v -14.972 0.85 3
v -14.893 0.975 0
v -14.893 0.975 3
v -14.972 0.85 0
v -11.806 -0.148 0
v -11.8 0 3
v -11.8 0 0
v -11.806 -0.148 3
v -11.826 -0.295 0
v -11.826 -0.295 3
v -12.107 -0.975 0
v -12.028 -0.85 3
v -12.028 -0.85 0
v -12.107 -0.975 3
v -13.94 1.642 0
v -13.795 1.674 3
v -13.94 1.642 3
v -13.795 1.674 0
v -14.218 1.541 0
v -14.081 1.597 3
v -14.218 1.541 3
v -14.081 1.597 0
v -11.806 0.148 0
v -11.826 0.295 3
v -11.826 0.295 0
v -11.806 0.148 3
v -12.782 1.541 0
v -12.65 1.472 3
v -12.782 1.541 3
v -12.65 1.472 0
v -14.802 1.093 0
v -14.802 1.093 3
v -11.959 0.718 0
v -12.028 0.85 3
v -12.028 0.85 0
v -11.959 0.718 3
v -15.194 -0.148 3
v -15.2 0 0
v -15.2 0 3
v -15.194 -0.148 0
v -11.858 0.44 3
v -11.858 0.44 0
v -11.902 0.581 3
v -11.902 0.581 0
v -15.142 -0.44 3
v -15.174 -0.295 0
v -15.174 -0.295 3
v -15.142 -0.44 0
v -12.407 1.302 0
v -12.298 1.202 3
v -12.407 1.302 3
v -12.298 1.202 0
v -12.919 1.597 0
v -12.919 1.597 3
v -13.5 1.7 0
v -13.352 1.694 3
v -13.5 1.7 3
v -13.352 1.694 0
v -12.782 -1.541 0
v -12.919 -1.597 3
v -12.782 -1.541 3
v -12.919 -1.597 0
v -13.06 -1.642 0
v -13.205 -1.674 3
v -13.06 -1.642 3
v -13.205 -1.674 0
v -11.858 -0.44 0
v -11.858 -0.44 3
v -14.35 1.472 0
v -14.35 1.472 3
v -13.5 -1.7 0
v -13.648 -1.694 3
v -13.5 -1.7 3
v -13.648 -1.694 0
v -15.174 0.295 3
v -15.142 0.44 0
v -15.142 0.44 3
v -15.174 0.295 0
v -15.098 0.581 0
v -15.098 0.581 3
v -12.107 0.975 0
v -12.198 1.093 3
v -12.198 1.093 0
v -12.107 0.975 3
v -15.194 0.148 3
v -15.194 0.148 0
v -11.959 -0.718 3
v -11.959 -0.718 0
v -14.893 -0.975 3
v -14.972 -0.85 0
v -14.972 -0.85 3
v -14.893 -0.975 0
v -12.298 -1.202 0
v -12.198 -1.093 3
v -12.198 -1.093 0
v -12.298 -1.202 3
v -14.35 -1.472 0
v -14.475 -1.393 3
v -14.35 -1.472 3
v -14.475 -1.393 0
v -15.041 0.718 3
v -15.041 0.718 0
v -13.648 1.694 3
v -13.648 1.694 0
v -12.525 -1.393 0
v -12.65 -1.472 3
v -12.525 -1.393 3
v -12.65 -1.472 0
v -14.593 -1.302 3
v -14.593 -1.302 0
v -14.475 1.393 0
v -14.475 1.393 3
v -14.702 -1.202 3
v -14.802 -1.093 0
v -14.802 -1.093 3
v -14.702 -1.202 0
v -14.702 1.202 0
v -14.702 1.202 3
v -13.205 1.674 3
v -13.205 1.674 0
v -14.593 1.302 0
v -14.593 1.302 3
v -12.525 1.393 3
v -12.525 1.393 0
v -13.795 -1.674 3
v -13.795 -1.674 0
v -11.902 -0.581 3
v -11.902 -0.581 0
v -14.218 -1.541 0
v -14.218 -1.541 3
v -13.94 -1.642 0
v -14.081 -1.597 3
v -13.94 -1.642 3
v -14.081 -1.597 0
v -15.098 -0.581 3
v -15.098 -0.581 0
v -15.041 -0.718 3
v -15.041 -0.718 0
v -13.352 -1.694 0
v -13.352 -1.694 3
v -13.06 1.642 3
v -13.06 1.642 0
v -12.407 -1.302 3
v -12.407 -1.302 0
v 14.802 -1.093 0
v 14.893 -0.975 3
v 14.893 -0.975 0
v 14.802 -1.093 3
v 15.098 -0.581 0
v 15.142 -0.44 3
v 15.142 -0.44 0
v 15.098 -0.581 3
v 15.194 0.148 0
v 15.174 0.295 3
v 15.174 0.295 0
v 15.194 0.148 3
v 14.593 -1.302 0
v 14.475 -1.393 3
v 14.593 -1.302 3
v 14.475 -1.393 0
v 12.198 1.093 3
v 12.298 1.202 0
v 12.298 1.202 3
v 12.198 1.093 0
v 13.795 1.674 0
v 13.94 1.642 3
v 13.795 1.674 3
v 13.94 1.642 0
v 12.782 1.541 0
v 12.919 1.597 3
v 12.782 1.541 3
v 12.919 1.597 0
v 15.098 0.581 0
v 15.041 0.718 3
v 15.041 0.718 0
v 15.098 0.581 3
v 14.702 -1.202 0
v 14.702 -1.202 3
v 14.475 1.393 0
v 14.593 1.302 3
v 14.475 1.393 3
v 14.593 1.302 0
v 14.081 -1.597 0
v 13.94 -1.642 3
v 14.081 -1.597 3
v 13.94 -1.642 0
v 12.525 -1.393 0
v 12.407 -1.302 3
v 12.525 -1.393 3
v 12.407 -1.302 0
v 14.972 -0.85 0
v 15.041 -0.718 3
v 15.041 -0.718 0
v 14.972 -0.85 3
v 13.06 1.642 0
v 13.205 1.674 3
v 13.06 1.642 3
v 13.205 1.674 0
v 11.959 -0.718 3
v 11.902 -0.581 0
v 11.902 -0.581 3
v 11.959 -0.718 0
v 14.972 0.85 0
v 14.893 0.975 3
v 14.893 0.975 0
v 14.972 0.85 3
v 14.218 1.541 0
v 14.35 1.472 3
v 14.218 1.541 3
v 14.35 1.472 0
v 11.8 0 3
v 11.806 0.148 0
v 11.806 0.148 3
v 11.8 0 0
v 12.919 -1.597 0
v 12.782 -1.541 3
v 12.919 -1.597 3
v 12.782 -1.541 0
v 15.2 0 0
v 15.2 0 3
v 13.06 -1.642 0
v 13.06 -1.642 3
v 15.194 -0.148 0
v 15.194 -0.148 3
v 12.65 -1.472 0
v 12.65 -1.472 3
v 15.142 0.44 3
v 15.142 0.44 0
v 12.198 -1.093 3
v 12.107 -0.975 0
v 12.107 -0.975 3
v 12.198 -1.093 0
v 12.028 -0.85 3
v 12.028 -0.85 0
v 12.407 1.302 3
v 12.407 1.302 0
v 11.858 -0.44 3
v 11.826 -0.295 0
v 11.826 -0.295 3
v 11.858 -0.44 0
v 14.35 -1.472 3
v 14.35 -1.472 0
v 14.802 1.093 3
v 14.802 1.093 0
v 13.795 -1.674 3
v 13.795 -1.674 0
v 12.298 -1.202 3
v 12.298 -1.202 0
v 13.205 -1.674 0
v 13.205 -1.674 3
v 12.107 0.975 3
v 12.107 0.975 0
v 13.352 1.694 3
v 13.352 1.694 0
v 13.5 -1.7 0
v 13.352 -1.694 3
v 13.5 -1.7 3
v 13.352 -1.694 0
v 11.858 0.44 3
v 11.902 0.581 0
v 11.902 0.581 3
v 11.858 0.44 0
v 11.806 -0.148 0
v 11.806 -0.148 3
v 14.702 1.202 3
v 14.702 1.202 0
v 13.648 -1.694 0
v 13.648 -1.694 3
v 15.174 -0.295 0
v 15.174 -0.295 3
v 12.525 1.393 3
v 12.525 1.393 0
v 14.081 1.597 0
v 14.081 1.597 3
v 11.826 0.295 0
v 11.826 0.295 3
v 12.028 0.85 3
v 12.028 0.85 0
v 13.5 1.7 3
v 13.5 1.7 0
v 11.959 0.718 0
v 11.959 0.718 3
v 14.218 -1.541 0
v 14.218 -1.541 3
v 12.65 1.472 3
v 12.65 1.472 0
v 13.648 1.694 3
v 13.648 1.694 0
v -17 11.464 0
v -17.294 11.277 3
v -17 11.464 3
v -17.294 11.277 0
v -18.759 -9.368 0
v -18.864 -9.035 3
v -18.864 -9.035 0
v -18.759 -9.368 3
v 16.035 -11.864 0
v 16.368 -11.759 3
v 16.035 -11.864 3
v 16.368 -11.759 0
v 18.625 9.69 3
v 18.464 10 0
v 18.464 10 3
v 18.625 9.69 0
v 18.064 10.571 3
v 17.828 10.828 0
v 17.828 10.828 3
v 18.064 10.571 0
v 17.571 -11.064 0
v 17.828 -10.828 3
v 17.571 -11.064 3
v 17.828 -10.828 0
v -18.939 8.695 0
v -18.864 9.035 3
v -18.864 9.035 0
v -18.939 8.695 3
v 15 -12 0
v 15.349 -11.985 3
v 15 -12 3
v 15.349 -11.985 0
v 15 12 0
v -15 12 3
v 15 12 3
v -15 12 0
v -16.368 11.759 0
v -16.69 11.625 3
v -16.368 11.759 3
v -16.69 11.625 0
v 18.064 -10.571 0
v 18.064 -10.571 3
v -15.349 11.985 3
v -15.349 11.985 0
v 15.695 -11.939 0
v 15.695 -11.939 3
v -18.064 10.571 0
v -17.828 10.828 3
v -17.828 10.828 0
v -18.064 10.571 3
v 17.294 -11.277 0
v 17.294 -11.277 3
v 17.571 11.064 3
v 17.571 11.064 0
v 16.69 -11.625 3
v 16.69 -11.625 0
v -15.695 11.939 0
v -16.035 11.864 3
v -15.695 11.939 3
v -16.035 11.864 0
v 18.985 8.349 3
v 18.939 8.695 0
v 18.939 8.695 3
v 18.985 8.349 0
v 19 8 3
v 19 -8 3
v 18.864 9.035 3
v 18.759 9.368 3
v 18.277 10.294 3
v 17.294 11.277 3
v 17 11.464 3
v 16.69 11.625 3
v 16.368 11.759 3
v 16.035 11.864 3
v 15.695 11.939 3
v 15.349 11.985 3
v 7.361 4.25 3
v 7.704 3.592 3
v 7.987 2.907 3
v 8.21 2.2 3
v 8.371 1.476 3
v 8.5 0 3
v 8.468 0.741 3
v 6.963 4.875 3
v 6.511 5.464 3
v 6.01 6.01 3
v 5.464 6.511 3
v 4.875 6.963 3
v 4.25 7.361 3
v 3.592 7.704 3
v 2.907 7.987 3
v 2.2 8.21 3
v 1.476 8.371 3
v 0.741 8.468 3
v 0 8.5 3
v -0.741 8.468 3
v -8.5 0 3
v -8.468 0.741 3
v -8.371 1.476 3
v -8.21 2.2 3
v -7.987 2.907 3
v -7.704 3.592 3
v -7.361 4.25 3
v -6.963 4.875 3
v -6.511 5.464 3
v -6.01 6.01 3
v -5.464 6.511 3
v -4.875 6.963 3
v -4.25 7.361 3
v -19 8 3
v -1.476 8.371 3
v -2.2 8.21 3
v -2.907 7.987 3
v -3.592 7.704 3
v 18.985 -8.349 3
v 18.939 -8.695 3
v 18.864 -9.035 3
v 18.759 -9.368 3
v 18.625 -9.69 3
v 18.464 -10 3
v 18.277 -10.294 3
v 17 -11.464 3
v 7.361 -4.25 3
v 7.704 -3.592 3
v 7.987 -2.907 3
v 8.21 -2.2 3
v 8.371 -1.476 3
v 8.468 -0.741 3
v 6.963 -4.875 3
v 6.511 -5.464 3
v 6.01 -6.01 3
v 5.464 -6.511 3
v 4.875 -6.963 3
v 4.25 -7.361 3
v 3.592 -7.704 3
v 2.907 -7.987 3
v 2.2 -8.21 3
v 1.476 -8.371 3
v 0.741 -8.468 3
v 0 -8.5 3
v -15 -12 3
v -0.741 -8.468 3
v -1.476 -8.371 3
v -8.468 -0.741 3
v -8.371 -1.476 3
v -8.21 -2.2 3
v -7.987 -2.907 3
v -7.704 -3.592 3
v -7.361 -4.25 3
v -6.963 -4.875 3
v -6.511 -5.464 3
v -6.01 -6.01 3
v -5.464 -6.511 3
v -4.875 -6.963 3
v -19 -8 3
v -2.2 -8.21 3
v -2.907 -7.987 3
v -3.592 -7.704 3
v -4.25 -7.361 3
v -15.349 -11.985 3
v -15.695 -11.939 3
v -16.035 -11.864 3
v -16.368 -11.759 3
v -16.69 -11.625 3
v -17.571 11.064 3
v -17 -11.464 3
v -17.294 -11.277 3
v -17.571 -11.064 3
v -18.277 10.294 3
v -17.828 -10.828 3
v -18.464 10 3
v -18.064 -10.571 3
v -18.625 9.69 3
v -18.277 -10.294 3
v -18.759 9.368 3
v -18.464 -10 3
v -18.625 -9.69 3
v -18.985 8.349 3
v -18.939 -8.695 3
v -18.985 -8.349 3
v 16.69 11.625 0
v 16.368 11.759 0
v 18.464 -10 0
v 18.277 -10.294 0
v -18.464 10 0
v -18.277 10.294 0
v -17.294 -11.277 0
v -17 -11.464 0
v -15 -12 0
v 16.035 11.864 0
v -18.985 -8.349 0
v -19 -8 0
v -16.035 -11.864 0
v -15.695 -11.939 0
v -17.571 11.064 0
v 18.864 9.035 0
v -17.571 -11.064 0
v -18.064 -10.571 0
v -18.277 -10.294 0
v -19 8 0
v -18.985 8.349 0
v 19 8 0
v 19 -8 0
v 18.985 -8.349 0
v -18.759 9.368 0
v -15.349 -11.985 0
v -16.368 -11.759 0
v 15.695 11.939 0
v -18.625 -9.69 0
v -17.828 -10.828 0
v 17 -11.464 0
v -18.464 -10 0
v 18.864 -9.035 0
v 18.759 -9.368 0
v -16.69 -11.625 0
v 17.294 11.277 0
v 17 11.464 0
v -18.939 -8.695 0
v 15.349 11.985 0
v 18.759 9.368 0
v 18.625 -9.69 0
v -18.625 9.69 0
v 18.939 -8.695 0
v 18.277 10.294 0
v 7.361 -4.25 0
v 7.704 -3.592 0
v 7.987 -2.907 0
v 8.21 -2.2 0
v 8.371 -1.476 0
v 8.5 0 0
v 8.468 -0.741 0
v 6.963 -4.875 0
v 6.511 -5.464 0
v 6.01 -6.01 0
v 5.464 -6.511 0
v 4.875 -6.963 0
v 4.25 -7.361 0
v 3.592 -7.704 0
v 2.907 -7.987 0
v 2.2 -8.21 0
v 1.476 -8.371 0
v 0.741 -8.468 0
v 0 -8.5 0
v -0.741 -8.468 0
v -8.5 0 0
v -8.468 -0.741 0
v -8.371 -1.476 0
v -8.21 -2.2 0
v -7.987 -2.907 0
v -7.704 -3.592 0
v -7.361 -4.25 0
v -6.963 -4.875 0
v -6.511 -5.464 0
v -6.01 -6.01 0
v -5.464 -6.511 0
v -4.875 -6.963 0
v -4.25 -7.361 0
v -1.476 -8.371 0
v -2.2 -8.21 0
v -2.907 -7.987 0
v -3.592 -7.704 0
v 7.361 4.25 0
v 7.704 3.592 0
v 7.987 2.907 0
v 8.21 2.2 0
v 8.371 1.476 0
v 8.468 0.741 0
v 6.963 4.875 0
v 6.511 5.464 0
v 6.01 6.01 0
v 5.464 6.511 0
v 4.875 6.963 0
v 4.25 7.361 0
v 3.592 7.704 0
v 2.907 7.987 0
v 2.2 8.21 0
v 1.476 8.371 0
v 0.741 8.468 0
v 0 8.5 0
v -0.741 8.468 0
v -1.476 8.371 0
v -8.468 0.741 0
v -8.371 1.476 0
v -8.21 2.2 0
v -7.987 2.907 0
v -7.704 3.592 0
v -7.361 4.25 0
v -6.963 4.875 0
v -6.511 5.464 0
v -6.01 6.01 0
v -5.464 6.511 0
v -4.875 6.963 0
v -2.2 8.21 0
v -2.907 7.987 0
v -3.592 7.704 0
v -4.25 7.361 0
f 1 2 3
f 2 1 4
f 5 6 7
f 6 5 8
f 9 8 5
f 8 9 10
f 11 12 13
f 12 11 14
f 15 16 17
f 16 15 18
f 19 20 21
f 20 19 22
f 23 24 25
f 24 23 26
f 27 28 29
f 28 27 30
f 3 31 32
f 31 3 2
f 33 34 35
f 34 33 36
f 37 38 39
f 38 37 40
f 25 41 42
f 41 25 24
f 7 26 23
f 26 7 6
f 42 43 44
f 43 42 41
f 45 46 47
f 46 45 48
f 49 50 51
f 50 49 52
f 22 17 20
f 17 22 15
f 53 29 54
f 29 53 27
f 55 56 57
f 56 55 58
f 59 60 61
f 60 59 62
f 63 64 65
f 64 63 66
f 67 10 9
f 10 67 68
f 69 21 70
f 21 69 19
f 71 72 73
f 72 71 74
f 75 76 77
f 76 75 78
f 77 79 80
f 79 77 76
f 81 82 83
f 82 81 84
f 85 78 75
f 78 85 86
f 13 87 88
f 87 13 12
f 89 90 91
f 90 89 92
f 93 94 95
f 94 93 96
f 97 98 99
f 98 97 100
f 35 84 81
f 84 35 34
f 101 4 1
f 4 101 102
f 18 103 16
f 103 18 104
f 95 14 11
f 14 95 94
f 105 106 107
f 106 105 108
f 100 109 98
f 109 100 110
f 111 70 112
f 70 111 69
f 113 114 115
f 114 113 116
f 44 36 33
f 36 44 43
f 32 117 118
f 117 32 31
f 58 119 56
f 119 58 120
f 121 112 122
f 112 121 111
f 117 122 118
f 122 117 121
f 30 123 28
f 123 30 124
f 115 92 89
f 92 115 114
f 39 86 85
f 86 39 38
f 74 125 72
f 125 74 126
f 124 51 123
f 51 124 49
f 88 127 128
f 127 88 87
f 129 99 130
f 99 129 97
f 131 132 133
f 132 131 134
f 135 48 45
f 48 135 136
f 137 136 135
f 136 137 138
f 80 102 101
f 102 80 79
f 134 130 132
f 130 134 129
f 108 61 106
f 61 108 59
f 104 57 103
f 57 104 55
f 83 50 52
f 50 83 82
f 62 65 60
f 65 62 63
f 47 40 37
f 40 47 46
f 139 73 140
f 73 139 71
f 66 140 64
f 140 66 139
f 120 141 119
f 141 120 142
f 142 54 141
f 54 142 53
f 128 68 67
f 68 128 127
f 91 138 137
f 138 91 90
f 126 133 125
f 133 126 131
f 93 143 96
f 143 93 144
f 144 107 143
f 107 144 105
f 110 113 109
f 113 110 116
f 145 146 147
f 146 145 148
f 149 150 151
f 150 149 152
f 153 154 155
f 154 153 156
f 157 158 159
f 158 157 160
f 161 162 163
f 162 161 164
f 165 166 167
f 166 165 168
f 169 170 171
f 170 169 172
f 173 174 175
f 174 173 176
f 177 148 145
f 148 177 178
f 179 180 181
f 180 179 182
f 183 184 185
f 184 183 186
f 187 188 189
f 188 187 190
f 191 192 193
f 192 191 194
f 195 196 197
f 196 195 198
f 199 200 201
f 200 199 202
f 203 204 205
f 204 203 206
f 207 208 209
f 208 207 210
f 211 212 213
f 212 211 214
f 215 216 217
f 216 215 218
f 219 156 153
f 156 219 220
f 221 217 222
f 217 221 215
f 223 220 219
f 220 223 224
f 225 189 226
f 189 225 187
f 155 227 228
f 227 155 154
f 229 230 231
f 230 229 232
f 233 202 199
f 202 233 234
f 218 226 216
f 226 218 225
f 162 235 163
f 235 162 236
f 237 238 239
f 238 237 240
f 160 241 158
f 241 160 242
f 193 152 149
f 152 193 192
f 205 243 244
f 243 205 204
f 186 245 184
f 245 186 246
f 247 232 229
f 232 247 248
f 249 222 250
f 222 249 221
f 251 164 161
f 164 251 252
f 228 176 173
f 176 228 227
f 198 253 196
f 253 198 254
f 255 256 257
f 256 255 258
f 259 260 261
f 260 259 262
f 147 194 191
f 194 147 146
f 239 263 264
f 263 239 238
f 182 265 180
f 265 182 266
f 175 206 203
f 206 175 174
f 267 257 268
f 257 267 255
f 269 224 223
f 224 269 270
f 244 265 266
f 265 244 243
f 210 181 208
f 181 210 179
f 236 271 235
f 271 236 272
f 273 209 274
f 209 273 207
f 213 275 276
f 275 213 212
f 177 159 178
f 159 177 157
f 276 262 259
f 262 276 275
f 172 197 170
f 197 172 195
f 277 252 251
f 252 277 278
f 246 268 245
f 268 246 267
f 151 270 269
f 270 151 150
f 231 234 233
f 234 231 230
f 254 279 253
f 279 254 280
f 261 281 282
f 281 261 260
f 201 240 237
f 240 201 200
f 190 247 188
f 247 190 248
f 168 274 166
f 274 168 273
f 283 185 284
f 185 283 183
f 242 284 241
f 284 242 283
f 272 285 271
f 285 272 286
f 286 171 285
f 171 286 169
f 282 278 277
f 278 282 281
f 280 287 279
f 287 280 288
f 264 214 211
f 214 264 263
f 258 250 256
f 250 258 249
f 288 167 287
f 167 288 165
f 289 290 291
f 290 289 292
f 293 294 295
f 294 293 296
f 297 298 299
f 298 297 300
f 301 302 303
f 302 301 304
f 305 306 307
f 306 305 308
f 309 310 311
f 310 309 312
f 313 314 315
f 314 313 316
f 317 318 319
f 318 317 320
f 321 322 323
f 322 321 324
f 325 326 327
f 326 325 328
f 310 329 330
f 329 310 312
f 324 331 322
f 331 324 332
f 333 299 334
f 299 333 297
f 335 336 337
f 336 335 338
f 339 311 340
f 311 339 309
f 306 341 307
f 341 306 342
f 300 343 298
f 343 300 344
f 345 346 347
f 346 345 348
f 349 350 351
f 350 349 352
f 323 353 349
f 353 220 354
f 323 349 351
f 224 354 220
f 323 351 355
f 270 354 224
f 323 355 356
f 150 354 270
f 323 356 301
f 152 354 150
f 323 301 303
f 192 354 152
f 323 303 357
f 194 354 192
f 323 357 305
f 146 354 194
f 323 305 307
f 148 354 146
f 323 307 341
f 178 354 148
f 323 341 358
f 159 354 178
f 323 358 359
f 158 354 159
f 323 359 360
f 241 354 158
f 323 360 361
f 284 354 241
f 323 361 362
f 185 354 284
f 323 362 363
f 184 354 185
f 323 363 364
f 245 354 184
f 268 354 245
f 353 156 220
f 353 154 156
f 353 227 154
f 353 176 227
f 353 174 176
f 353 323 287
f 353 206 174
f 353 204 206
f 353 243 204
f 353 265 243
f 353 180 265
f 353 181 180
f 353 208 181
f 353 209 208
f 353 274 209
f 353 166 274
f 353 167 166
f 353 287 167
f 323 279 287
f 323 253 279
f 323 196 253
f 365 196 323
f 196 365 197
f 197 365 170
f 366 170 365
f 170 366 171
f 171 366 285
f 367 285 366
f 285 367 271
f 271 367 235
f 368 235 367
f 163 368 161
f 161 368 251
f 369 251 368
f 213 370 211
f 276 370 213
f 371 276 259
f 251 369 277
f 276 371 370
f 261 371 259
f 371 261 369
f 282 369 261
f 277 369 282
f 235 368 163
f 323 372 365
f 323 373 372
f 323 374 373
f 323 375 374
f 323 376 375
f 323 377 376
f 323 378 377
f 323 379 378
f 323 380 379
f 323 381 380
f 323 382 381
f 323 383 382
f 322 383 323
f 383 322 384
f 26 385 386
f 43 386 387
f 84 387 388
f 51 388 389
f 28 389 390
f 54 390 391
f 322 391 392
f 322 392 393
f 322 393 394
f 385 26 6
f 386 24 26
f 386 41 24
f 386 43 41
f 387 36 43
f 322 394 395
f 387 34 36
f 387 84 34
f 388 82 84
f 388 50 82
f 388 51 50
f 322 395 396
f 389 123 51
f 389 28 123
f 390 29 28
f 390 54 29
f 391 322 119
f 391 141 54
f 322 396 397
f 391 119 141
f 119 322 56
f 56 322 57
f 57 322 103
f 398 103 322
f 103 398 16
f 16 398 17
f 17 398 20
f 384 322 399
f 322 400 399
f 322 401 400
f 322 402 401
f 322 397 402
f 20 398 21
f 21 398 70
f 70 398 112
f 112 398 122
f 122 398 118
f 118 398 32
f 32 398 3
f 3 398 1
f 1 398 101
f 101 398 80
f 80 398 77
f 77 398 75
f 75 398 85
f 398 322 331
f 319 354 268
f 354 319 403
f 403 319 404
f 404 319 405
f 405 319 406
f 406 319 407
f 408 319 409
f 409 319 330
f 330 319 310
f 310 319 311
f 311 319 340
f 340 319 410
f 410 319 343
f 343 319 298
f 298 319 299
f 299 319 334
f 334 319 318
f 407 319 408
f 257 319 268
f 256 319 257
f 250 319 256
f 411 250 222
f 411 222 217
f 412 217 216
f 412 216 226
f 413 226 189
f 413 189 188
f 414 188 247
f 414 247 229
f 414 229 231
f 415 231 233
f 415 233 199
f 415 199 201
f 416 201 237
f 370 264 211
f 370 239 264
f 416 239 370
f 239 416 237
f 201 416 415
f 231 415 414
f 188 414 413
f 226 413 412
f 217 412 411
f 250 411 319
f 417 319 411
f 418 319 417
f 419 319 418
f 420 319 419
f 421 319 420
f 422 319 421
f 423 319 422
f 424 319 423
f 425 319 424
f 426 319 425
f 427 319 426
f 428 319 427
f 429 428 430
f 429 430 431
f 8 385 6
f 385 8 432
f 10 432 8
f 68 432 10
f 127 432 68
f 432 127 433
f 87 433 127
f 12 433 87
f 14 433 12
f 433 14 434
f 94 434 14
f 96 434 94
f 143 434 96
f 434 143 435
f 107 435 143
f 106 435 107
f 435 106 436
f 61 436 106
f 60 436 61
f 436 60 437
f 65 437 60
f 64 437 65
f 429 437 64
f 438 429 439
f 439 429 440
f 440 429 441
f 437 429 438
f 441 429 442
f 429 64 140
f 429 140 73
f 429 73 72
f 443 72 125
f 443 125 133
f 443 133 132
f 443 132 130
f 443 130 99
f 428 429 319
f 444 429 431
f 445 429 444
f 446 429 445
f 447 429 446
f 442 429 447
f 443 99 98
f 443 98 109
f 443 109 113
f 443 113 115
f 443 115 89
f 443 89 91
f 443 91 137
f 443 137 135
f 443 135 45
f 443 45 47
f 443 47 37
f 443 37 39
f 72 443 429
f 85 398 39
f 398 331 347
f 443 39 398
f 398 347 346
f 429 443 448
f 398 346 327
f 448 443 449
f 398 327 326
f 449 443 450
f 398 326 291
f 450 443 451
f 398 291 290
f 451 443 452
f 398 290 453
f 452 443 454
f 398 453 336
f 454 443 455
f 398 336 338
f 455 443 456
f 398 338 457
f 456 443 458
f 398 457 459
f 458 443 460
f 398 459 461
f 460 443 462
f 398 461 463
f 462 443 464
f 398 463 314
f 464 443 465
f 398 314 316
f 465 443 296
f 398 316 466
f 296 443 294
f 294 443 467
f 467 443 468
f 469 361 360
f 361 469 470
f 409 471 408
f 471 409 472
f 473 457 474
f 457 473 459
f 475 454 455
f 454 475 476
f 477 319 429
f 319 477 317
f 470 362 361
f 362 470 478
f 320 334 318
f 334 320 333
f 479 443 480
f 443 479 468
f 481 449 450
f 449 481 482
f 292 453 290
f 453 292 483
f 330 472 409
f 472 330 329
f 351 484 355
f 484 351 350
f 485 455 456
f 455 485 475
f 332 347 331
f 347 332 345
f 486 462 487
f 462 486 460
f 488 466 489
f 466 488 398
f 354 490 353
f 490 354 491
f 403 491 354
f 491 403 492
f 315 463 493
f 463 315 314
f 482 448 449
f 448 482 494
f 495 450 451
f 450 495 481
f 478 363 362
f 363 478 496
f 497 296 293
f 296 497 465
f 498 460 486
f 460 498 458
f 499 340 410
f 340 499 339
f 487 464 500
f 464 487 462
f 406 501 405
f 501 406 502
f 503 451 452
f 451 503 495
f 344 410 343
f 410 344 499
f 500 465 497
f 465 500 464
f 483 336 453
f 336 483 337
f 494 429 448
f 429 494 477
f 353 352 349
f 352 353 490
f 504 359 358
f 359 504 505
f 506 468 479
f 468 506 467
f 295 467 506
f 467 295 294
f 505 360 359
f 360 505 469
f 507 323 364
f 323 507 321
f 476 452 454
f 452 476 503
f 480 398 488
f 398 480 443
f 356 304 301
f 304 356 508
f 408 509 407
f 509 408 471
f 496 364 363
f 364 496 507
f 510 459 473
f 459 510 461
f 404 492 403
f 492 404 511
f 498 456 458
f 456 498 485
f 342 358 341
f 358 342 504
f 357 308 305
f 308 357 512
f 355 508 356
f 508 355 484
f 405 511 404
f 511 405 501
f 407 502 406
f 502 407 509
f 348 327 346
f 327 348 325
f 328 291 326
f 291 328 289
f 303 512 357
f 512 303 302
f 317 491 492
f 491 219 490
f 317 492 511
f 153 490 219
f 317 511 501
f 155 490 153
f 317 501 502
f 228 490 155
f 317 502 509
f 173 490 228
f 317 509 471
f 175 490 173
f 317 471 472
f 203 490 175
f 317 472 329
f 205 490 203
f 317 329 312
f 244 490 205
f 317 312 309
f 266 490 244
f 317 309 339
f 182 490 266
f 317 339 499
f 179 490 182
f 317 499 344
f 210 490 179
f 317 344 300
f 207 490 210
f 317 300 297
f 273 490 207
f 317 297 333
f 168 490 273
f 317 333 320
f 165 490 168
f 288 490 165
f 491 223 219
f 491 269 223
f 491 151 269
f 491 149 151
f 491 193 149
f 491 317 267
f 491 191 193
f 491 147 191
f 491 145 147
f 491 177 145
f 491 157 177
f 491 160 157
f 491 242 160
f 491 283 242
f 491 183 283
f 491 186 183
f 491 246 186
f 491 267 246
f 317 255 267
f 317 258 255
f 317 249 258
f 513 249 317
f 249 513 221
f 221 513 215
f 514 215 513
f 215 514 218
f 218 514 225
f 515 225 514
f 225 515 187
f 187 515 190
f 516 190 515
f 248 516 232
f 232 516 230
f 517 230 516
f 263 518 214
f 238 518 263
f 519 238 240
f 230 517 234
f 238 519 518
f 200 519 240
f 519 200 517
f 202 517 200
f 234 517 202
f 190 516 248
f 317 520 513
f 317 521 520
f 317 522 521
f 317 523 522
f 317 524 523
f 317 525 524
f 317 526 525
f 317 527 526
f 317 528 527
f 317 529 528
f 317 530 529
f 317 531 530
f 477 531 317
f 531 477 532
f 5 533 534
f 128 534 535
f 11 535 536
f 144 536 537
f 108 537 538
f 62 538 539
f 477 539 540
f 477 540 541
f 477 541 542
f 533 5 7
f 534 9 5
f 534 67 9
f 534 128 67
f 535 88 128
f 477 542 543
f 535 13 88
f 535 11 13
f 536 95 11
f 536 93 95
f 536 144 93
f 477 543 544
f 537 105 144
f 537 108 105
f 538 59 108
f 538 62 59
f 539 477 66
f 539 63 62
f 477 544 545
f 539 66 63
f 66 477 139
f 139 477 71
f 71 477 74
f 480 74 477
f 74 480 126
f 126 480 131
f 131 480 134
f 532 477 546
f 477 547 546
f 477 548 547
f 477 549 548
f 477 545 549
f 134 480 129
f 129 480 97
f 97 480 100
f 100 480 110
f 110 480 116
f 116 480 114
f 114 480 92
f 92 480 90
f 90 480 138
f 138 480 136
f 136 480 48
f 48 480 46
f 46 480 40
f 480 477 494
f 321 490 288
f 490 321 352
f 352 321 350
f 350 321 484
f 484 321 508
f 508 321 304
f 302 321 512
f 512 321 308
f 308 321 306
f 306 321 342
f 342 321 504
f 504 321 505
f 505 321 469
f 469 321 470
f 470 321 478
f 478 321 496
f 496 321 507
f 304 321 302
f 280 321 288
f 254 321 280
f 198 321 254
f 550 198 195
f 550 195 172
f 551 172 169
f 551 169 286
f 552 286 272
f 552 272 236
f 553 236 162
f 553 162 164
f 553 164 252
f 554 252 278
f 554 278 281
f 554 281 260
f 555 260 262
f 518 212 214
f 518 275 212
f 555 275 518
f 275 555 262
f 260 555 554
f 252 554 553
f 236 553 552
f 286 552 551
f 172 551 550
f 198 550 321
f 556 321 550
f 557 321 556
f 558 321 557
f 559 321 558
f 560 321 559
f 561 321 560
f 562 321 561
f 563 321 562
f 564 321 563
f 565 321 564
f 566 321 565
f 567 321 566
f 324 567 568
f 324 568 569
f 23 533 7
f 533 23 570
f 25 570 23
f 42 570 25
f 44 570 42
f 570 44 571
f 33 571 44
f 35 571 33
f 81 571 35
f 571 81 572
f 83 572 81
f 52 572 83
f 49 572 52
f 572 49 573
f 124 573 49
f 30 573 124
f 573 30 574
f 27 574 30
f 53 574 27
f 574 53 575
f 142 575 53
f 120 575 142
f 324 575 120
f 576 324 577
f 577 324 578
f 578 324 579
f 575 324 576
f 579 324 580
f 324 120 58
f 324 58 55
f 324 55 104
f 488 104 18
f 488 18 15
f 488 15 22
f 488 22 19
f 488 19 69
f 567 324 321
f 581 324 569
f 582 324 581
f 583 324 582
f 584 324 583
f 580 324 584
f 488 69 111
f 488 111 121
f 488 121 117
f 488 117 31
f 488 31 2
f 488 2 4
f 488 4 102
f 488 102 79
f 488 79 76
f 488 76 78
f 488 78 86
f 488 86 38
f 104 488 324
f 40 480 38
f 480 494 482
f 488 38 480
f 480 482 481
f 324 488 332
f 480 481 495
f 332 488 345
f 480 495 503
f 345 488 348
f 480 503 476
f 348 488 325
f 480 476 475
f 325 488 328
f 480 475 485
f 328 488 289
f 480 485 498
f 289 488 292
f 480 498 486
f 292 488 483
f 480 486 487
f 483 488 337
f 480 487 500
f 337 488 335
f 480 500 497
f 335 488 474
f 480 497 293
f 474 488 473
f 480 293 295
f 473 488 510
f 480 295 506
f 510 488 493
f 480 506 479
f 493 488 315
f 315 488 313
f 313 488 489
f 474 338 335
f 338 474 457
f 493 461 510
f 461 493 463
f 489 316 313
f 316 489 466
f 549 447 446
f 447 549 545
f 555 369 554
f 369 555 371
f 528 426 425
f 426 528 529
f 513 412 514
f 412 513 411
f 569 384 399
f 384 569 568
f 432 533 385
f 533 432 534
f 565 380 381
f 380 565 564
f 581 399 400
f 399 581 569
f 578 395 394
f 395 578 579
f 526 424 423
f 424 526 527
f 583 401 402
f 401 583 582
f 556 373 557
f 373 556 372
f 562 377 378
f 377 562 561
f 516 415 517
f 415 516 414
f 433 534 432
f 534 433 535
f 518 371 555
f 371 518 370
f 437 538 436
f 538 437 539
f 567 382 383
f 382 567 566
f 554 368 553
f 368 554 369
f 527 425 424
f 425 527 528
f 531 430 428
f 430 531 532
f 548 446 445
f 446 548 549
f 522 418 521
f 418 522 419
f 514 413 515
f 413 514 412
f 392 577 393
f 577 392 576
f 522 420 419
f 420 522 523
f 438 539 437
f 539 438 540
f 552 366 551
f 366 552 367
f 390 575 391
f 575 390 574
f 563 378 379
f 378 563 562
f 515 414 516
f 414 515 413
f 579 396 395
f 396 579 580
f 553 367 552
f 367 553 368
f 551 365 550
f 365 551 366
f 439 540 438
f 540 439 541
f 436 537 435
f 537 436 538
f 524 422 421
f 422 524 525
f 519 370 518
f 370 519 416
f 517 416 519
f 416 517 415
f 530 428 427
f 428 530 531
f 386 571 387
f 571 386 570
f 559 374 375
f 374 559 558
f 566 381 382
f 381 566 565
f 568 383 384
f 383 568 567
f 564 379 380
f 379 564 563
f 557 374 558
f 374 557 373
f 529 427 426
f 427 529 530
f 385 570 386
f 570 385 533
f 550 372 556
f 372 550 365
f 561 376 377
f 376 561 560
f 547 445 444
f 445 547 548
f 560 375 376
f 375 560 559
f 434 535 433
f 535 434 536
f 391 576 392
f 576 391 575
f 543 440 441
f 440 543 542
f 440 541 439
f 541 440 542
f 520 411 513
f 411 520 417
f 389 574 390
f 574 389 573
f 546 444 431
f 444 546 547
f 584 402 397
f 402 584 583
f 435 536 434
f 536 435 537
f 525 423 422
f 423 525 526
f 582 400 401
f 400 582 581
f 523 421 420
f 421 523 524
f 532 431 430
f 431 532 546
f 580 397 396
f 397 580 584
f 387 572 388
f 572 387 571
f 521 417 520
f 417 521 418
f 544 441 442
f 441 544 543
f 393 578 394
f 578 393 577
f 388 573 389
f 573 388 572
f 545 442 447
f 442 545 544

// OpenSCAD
// file: woli_config.scad
// ============================================================
// WOLI V1.1 AUDITED FINAL — MASTER PARAMETERS
// Units: mm
// ============================================================

$fn = 72;

// ---------- GLOBAL ----------
fit_clearance = 0.40;
wall = 3.0;
floor_t = 5.0;
cover_t = 2.8;
shell_r = 10.0;

m3_clear = 3.4;
m3_pilot_d = 2.8;
m3_pilot_depth = 4.2;

tie_slot_w = 3.8;
tie_slot_l = 18;

// ---------- BODY ----------
body_w = 170;
body_l = 90;
chassis_h = 31;
top_h = 34;

top_upper_w = 162;
top_upper_l = 80;
top_upper_r = 9;

// ---------- N20 DRIVE ----------
wheel_d = 43;
wheel_w = 17.5;

n20_x = 12;
n20_y = 33;
n20_z = 10;

n20_bracket_x = 25;
n20_bracket_y = 8.5;
n20_bracket_z = 11.5;
n20_bracket_hole_cc = 17;      // approx; slots absorb error

wheel_axis_ground_z = wheel_d/2; // reference only; actual chassis ground plane requires hardware check
wheel_opening_l = 25;            // side wheel cutout depth (Y), mm
motor_y = -body_l/2 + body_l/3;  // wheel center: 1/3 body depth in from front (-Y)
motor_slot_len = 8;
motor_bracket_zone_x = body_w/2 - 18;

// ---------- BALL CASTER ----------
caster_w = 22;
caster_l = 17;
caster_h = 15;
caster_ball_d_visual_ref = 11.5; // photo-only reference; not used for fit
caster_dock_y = body_l/2 - 21;

caster_body_clear = 0.7;
caster_retainer_t = 3.0;
caster_retainer_screw_cc = 27;

caster_mount_x = 15;
caster_mount_y = 12;
caster_floor_open = 18.5;

// ---------- MAIN PCB ----------
pcb_w = 50;
pcb_l = 70;
pcb_stack_h = 15;

pcb_tray_w = 56;
pcb_tray_l = 76;
pcb_mount_cc_x = 44;
pcb_mount_cc_y = 64;

// ---------- MG90S ----------
servo_a = 32.4;
servo_b = 32.5;
servo_c = 12;
servo_fit = 0.7;

// ---------- LIMIT SWITCH ----------
limit_w = 21;
limit_l = 23;
limit_h = 6;

// ---------- VL53L0X ----------
tof_w = 10.7;
tof_l = 25;
tof_h = 11.5;
tof_rail_clear = 0.7;

tof_bezel_w = 34;
tof_bezel_h = 19;

// ---------- PHONE HOLDER / NECK ----------
phone_ball_d = 18.0;            // physical socket fit still required
neck_h = 30;
neck_base_w = 54;
neck_base_l = 42;
neck_base_h = 5;
neck_hole_x = 38;
neck_hole_y = 26;

neck_recess_w = 62;
neck_recess_l = 50;
neck_recess_d = 1.2;

neck_pilot_d = 2.8;
neck_pilot_depth = 7.0;

// reference phone clearance envelope only
phone_ref_w = 165;
phone_ref_h = 82;
phone_ref_t = 12;

// ---------- KLIFE PD-Q2 BATTERY ----------
battery_w = 68;
battery_l = 143;
battery_h = 11;
battery_mass_g = 205;

battery_fit_clear = 0.8;
battery_tray_w = 84;
battery_tray_l = 146;
battery_tray_t = 2.4;
battery_rail_t = 2.5;
battery_rail_h = 5.5;
battery_center_y = -18;

battery_tray_mount_x = 39;
battery_tray_mount_y = 55;

// ---------- UPPER ELECTRONICS DECK ----------
bridge_w = 122;
bridge_l = 94;
bridge_t = 3.0;
bridge_leg_h = 20;
bridge_leg_x = 56;
bridge_leg_y = 36;

module_boss_h = 4.5;
module_boss_d = 8.0;
module_pilot_d = 2.8;

pcb_deck_cx = -25;
pcb_deck_cy = 0;

tb_deck_cx = 34;
tb_deck_cy = 17;

usbc_deck_cx = 36;
usbc_deck_cy = -24;

// ---------- TB6612FNG HW-166 ----------
tb6612_w = 26;
tb6612_l = 26;
tb6612_clear = 0.6;

// total installed height is intentionally not hard-coded

// ---------- USB-C BREAKOUT ----------
usbc_board_w = 12;
usbc_board_l = 15;
usbc_connector_h = 4.2;
usbc_clear = 0.6;

// ---------- TOP COVER INTERFACE ----------
cover_skirt_depth = 4.0;
cover_skirt_clear = 0.8;
cover_skirt_t = 2.5;

cover_side_screw_y = 55 * body_l / 190;
cover_side_screw_z = -2.5;

rear_service_w = 42;
rear_service_h = 14;
rear_hatch_screw_x = 19;
rear_hatch_center_z = 10;

// ---------- CABLE MANAGEMENT ----------
cable_bridge_w = 24;
cable_bridge_l = 14;
cable_bridge_h = 8;
cable_bridge_channel = 8;

// ---------- SERVO LOCK FRAMEWORK ----------
lock_angle_deg = 90;
unlock_angle_deg = 10;

lock_plate_d = 28;
lock_arm_w = 10;
lock_arm_t = 4.0;
lock_reach = 22;
lock_tip_d = 10;

horn_center_clear_d = 7.0;
horn_slot_d = 2.4;              // physical stock-horn check required
horn_slot_len = 8.0;
horn_slot_radius = 8.0;

lock_pad_t = 2.0;
lock_pad_d = 11.0;
// file: woli_lib.scad
include <woli_config.scad>;

module rr2d(w,l,r){
    offset(r=r) square([w-2*r,l-2*r], center=true);
}

module rplate(w,l,h,r){
    linear_extrude(height=h) rr2d(w,l,r);
}

module rshell(w,l,h,r,t,bottom){
    difference(){
        rplate(w,l,h,r);
        translate([0,0,bottom])
            rplate(w-2*t,l-2*t,h,r-t);
    }
}

module slot2d(len,d){
    hull(){
        translate([-len/2,0]) circle(d=d);
        translate([ len/2,0]) circle(d=d);
    }
}

module slot3d(len,d,h){
    linear_extrude(height=h) slot2d(len,d);
}

module tie_slot(h=5){
    rplate(tie_slot_w,tie_slot_l,h,1.2);
}

module body_screw_pattern(h=20){
    for(x=[-screw_x,screw_x])
        for(y=[-screw_y,screw_y])
            translate([x,y,-1])
                cylinder(h=h,d=m3_clear);
}

module body_bosses(h=20){
    for(x=[-screw_x,screw_x])
        for(y=[-screw_y,screw_y])
            translate([x,y,0])
                cylinder(h=h,d=m3_boss_d);
}


// Closed-top shell for removable upper cover.
// Leaves the underside open and preserves a roof thickness.
module top_shell(w,l,h,r,t){
    difference(){
        rplate(w,l,h,r);
        translate([0,0,-0.1])
            rplate(w-2*t,l-2*t,h-t+0.1,r-t);
    }
}


// Tapered rounded solid built from two rounded plates.
// Useful for product-like enclosure shoulders.
module tapered_rounded_solid(w0,l0,w1,l1,h,r0,r1){
    hull(){
        rplate(w0,l0,0.8,r0);
        translate([0,0,h-0.8])
            rplate(w1,l1,0.8,r1);
    }
}

// Open-bottom tapered cover with closed roof.
module tapered_top_shell(w0,l0,w1,l1,h,r0,r1,t){
    difference(){
        tapered_rounded_solid(w0,l0,w1,l1,h,r0,r1);
        translate([0,0,-0.1])
            tapered_rounded_solid(
                w0-2*t,l0-2*t,
                w1-2*t,l1-2*t,
                h-t+0.1,
                max(r0-t,1),max(r1-t,1)
            );
    }
}
// main file
include <woli_lib.scad>;

ret_w=38;
ret_l=24;
ret_t=3.0;

difference(){
    rplate(ret_w,ret_l,ret_t,4);

    // Keep central round housing completely free.
    translate([0,0,-0.1])
        cylinder(h=ret_t+0.3,d=17.0);

    // Clearance holes; threads are formed in 09 base.
    for(x=[-caster_retainer_screw_cc/2,caster_retainer_screw_cc/2])
        translate([x,0,-0.1])
            cylinder(h=ret_t+0.3,d=m3_clear);
}
